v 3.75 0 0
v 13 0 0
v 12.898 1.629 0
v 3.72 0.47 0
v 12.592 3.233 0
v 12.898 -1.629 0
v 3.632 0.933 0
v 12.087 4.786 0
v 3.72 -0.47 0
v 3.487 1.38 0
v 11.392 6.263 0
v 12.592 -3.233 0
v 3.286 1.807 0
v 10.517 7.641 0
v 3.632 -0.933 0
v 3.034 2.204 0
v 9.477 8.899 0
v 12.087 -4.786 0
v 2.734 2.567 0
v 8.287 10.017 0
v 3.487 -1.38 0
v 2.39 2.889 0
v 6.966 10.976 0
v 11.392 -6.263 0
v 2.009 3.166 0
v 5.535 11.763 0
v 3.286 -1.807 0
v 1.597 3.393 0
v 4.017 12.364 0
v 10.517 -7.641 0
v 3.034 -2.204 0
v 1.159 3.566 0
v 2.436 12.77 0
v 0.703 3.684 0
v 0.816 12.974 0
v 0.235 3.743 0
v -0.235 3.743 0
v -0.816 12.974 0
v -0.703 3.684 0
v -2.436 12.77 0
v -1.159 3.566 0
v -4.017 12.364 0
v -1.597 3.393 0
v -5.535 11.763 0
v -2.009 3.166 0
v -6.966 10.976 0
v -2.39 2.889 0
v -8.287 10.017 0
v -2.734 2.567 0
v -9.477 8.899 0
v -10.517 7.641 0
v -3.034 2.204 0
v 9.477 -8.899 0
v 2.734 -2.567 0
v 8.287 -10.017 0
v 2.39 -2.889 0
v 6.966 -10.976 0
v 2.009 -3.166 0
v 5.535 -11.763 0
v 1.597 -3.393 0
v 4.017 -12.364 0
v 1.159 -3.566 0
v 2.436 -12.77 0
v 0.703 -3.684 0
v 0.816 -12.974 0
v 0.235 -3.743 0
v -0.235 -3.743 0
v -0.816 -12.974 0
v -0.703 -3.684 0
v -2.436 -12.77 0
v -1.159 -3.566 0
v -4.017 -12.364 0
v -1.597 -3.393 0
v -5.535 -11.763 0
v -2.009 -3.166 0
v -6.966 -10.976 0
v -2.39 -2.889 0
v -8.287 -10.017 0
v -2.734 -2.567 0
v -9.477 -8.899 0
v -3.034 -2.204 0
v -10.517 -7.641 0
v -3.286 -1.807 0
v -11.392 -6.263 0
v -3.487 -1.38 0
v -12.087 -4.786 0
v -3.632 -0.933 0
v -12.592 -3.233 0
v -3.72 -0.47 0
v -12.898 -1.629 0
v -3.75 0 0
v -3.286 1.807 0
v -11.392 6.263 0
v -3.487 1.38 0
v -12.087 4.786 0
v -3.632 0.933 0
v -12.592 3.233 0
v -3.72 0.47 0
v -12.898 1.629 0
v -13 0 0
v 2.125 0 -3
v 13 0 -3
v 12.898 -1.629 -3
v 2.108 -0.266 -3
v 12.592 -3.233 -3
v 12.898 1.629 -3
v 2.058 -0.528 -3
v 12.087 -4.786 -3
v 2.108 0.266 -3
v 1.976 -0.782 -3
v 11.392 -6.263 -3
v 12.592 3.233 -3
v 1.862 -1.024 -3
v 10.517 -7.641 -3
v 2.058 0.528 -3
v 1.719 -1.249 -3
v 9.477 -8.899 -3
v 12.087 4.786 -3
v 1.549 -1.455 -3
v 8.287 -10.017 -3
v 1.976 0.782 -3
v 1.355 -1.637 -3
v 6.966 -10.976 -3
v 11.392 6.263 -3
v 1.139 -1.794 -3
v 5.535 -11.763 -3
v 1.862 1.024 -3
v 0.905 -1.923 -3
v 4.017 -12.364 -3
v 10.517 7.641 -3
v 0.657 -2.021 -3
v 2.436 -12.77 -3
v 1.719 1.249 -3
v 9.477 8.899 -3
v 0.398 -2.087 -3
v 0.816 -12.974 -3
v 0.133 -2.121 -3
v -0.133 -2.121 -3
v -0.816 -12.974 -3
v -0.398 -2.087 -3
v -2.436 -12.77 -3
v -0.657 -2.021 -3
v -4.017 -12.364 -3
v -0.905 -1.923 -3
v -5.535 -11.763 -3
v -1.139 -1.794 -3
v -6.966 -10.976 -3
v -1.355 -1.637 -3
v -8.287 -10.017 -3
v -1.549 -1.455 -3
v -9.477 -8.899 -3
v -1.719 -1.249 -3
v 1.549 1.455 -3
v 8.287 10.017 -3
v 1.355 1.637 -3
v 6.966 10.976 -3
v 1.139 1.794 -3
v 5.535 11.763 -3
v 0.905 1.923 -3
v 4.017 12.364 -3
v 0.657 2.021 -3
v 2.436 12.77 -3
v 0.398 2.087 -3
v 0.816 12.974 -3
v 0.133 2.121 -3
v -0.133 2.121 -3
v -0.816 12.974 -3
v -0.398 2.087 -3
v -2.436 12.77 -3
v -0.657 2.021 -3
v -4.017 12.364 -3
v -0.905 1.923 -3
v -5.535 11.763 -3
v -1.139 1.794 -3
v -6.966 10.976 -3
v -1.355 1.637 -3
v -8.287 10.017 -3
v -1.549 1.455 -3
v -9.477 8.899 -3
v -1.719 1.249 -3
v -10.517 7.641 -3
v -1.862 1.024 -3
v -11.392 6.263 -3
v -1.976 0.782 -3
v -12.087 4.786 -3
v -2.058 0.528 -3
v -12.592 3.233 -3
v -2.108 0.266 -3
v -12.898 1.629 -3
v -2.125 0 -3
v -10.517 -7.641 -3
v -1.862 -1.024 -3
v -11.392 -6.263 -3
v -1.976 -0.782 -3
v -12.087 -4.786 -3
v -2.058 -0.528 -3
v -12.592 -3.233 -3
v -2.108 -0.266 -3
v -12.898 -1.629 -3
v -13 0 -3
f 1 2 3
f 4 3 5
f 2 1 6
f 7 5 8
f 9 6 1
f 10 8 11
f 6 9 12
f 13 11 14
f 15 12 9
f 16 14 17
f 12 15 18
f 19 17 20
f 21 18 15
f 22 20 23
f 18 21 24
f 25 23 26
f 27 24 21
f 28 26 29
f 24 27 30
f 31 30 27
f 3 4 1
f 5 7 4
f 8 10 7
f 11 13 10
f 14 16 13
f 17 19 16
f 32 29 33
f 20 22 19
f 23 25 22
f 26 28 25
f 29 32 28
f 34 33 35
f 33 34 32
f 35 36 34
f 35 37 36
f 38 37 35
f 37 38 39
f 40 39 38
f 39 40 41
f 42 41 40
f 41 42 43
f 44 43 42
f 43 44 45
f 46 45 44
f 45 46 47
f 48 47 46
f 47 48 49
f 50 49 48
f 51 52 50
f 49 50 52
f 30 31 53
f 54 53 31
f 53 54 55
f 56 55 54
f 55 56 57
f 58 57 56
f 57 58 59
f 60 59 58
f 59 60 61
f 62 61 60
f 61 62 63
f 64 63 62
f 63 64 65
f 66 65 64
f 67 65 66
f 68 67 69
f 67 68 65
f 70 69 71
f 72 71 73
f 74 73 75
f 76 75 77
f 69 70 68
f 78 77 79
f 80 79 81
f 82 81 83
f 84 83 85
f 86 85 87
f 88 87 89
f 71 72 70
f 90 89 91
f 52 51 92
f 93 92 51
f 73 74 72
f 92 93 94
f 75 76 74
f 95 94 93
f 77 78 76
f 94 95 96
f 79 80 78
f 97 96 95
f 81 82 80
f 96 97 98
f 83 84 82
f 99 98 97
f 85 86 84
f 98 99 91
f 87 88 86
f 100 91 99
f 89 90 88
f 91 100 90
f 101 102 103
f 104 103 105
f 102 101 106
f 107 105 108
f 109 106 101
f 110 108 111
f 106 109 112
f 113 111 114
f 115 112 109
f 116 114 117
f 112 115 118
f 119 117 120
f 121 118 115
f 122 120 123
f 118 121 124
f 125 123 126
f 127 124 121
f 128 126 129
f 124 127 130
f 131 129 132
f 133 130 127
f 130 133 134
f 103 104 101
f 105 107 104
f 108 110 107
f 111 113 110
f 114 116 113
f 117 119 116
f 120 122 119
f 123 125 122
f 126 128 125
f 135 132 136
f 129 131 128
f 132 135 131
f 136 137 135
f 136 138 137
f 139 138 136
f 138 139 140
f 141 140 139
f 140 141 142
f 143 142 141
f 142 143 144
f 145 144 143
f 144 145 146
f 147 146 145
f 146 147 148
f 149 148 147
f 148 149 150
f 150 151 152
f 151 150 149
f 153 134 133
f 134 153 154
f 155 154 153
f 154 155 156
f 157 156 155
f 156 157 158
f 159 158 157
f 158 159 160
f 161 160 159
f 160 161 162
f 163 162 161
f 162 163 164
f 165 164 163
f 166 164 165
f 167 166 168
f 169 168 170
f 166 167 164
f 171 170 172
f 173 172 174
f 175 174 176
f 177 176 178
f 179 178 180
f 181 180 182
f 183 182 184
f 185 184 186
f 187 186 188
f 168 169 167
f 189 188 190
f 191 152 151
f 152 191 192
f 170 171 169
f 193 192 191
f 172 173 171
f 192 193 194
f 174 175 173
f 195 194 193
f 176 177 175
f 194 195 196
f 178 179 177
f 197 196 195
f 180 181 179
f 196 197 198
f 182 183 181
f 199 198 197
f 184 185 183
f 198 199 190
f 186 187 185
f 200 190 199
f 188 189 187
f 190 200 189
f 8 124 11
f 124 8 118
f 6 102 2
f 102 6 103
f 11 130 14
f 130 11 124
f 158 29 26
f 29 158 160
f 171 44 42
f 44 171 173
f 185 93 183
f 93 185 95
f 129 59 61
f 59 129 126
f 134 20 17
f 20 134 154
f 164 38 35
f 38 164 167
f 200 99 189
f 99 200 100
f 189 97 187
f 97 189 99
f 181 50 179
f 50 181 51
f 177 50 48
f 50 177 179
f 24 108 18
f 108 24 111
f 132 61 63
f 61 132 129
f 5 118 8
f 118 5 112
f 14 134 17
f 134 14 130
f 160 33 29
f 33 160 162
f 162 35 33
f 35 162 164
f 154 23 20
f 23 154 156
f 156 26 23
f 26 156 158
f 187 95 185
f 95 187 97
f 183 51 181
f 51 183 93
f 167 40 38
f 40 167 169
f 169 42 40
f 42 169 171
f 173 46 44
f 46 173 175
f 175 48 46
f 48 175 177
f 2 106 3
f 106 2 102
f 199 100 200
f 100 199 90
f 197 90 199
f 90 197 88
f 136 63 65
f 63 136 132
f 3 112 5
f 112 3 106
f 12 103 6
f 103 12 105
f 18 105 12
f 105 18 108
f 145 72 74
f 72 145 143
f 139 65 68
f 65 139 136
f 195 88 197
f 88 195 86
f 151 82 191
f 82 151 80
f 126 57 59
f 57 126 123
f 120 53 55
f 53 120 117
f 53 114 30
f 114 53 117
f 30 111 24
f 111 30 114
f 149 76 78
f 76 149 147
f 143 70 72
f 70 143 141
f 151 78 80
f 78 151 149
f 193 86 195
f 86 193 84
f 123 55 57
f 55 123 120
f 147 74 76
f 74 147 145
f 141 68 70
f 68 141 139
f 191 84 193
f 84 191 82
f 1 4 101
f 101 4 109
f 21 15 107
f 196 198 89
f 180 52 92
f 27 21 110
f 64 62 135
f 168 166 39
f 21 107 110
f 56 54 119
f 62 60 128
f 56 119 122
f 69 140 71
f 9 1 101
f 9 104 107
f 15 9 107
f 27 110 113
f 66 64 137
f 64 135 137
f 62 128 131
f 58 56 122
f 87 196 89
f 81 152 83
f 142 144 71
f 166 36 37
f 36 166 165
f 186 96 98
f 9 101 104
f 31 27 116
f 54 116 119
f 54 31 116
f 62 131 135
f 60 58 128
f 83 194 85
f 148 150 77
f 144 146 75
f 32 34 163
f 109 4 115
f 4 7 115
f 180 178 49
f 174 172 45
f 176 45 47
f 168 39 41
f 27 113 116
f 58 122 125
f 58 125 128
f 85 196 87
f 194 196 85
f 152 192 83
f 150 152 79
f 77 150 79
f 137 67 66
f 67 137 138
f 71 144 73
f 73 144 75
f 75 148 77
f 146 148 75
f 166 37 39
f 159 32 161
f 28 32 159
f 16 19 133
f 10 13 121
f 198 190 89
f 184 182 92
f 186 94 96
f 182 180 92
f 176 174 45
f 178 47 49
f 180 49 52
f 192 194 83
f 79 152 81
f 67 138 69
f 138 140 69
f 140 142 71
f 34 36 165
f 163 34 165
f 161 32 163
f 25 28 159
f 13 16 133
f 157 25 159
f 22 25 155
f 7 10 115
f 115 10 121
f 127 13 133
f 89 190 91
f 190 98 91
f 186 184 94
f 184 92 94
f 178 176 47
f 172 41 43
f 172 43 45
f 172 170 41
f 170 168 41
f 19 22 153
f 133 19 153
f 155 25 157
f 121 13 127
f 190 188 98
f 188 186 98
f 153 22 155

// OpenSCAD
$fn = 50;


difference() {
	union() {
		translate(v = [0, 0, -3.0000000000]) {
			cylinder(h = 3, r = 10.0000000000);
		}
		translate(v = [0, 0, -3.0000000000]) {
			cylinder(h = 3, r = 13.0000000000);
		}
	}
	union() {
		translate(v = [0, 0, 0]) {
			rotate(a = [0, 0, 0]) {
				difference() {
					union() {
						#translate(v = [0, 0, -3.0000000000]) {
							cylinder(h = 3, r = 2.0000000000);
						}
						#translate(v = [0, 0, -3]) {
							cylinder(h = 3, r = 10.0000000000, r1 = 2.1250000000, r2 = 3.7500000000);
						}
						#translate(v = [0, 0, -3.0000000000]) {
							cylinder(h = 3, r = 2.1250000000);
						}
						#translate(v = [0, 0, -3.0000000000]) {
							cylinder(h = 3, r = 2.0000000000);
						}
					}
					union();
				}
			}
		}
	}
}
